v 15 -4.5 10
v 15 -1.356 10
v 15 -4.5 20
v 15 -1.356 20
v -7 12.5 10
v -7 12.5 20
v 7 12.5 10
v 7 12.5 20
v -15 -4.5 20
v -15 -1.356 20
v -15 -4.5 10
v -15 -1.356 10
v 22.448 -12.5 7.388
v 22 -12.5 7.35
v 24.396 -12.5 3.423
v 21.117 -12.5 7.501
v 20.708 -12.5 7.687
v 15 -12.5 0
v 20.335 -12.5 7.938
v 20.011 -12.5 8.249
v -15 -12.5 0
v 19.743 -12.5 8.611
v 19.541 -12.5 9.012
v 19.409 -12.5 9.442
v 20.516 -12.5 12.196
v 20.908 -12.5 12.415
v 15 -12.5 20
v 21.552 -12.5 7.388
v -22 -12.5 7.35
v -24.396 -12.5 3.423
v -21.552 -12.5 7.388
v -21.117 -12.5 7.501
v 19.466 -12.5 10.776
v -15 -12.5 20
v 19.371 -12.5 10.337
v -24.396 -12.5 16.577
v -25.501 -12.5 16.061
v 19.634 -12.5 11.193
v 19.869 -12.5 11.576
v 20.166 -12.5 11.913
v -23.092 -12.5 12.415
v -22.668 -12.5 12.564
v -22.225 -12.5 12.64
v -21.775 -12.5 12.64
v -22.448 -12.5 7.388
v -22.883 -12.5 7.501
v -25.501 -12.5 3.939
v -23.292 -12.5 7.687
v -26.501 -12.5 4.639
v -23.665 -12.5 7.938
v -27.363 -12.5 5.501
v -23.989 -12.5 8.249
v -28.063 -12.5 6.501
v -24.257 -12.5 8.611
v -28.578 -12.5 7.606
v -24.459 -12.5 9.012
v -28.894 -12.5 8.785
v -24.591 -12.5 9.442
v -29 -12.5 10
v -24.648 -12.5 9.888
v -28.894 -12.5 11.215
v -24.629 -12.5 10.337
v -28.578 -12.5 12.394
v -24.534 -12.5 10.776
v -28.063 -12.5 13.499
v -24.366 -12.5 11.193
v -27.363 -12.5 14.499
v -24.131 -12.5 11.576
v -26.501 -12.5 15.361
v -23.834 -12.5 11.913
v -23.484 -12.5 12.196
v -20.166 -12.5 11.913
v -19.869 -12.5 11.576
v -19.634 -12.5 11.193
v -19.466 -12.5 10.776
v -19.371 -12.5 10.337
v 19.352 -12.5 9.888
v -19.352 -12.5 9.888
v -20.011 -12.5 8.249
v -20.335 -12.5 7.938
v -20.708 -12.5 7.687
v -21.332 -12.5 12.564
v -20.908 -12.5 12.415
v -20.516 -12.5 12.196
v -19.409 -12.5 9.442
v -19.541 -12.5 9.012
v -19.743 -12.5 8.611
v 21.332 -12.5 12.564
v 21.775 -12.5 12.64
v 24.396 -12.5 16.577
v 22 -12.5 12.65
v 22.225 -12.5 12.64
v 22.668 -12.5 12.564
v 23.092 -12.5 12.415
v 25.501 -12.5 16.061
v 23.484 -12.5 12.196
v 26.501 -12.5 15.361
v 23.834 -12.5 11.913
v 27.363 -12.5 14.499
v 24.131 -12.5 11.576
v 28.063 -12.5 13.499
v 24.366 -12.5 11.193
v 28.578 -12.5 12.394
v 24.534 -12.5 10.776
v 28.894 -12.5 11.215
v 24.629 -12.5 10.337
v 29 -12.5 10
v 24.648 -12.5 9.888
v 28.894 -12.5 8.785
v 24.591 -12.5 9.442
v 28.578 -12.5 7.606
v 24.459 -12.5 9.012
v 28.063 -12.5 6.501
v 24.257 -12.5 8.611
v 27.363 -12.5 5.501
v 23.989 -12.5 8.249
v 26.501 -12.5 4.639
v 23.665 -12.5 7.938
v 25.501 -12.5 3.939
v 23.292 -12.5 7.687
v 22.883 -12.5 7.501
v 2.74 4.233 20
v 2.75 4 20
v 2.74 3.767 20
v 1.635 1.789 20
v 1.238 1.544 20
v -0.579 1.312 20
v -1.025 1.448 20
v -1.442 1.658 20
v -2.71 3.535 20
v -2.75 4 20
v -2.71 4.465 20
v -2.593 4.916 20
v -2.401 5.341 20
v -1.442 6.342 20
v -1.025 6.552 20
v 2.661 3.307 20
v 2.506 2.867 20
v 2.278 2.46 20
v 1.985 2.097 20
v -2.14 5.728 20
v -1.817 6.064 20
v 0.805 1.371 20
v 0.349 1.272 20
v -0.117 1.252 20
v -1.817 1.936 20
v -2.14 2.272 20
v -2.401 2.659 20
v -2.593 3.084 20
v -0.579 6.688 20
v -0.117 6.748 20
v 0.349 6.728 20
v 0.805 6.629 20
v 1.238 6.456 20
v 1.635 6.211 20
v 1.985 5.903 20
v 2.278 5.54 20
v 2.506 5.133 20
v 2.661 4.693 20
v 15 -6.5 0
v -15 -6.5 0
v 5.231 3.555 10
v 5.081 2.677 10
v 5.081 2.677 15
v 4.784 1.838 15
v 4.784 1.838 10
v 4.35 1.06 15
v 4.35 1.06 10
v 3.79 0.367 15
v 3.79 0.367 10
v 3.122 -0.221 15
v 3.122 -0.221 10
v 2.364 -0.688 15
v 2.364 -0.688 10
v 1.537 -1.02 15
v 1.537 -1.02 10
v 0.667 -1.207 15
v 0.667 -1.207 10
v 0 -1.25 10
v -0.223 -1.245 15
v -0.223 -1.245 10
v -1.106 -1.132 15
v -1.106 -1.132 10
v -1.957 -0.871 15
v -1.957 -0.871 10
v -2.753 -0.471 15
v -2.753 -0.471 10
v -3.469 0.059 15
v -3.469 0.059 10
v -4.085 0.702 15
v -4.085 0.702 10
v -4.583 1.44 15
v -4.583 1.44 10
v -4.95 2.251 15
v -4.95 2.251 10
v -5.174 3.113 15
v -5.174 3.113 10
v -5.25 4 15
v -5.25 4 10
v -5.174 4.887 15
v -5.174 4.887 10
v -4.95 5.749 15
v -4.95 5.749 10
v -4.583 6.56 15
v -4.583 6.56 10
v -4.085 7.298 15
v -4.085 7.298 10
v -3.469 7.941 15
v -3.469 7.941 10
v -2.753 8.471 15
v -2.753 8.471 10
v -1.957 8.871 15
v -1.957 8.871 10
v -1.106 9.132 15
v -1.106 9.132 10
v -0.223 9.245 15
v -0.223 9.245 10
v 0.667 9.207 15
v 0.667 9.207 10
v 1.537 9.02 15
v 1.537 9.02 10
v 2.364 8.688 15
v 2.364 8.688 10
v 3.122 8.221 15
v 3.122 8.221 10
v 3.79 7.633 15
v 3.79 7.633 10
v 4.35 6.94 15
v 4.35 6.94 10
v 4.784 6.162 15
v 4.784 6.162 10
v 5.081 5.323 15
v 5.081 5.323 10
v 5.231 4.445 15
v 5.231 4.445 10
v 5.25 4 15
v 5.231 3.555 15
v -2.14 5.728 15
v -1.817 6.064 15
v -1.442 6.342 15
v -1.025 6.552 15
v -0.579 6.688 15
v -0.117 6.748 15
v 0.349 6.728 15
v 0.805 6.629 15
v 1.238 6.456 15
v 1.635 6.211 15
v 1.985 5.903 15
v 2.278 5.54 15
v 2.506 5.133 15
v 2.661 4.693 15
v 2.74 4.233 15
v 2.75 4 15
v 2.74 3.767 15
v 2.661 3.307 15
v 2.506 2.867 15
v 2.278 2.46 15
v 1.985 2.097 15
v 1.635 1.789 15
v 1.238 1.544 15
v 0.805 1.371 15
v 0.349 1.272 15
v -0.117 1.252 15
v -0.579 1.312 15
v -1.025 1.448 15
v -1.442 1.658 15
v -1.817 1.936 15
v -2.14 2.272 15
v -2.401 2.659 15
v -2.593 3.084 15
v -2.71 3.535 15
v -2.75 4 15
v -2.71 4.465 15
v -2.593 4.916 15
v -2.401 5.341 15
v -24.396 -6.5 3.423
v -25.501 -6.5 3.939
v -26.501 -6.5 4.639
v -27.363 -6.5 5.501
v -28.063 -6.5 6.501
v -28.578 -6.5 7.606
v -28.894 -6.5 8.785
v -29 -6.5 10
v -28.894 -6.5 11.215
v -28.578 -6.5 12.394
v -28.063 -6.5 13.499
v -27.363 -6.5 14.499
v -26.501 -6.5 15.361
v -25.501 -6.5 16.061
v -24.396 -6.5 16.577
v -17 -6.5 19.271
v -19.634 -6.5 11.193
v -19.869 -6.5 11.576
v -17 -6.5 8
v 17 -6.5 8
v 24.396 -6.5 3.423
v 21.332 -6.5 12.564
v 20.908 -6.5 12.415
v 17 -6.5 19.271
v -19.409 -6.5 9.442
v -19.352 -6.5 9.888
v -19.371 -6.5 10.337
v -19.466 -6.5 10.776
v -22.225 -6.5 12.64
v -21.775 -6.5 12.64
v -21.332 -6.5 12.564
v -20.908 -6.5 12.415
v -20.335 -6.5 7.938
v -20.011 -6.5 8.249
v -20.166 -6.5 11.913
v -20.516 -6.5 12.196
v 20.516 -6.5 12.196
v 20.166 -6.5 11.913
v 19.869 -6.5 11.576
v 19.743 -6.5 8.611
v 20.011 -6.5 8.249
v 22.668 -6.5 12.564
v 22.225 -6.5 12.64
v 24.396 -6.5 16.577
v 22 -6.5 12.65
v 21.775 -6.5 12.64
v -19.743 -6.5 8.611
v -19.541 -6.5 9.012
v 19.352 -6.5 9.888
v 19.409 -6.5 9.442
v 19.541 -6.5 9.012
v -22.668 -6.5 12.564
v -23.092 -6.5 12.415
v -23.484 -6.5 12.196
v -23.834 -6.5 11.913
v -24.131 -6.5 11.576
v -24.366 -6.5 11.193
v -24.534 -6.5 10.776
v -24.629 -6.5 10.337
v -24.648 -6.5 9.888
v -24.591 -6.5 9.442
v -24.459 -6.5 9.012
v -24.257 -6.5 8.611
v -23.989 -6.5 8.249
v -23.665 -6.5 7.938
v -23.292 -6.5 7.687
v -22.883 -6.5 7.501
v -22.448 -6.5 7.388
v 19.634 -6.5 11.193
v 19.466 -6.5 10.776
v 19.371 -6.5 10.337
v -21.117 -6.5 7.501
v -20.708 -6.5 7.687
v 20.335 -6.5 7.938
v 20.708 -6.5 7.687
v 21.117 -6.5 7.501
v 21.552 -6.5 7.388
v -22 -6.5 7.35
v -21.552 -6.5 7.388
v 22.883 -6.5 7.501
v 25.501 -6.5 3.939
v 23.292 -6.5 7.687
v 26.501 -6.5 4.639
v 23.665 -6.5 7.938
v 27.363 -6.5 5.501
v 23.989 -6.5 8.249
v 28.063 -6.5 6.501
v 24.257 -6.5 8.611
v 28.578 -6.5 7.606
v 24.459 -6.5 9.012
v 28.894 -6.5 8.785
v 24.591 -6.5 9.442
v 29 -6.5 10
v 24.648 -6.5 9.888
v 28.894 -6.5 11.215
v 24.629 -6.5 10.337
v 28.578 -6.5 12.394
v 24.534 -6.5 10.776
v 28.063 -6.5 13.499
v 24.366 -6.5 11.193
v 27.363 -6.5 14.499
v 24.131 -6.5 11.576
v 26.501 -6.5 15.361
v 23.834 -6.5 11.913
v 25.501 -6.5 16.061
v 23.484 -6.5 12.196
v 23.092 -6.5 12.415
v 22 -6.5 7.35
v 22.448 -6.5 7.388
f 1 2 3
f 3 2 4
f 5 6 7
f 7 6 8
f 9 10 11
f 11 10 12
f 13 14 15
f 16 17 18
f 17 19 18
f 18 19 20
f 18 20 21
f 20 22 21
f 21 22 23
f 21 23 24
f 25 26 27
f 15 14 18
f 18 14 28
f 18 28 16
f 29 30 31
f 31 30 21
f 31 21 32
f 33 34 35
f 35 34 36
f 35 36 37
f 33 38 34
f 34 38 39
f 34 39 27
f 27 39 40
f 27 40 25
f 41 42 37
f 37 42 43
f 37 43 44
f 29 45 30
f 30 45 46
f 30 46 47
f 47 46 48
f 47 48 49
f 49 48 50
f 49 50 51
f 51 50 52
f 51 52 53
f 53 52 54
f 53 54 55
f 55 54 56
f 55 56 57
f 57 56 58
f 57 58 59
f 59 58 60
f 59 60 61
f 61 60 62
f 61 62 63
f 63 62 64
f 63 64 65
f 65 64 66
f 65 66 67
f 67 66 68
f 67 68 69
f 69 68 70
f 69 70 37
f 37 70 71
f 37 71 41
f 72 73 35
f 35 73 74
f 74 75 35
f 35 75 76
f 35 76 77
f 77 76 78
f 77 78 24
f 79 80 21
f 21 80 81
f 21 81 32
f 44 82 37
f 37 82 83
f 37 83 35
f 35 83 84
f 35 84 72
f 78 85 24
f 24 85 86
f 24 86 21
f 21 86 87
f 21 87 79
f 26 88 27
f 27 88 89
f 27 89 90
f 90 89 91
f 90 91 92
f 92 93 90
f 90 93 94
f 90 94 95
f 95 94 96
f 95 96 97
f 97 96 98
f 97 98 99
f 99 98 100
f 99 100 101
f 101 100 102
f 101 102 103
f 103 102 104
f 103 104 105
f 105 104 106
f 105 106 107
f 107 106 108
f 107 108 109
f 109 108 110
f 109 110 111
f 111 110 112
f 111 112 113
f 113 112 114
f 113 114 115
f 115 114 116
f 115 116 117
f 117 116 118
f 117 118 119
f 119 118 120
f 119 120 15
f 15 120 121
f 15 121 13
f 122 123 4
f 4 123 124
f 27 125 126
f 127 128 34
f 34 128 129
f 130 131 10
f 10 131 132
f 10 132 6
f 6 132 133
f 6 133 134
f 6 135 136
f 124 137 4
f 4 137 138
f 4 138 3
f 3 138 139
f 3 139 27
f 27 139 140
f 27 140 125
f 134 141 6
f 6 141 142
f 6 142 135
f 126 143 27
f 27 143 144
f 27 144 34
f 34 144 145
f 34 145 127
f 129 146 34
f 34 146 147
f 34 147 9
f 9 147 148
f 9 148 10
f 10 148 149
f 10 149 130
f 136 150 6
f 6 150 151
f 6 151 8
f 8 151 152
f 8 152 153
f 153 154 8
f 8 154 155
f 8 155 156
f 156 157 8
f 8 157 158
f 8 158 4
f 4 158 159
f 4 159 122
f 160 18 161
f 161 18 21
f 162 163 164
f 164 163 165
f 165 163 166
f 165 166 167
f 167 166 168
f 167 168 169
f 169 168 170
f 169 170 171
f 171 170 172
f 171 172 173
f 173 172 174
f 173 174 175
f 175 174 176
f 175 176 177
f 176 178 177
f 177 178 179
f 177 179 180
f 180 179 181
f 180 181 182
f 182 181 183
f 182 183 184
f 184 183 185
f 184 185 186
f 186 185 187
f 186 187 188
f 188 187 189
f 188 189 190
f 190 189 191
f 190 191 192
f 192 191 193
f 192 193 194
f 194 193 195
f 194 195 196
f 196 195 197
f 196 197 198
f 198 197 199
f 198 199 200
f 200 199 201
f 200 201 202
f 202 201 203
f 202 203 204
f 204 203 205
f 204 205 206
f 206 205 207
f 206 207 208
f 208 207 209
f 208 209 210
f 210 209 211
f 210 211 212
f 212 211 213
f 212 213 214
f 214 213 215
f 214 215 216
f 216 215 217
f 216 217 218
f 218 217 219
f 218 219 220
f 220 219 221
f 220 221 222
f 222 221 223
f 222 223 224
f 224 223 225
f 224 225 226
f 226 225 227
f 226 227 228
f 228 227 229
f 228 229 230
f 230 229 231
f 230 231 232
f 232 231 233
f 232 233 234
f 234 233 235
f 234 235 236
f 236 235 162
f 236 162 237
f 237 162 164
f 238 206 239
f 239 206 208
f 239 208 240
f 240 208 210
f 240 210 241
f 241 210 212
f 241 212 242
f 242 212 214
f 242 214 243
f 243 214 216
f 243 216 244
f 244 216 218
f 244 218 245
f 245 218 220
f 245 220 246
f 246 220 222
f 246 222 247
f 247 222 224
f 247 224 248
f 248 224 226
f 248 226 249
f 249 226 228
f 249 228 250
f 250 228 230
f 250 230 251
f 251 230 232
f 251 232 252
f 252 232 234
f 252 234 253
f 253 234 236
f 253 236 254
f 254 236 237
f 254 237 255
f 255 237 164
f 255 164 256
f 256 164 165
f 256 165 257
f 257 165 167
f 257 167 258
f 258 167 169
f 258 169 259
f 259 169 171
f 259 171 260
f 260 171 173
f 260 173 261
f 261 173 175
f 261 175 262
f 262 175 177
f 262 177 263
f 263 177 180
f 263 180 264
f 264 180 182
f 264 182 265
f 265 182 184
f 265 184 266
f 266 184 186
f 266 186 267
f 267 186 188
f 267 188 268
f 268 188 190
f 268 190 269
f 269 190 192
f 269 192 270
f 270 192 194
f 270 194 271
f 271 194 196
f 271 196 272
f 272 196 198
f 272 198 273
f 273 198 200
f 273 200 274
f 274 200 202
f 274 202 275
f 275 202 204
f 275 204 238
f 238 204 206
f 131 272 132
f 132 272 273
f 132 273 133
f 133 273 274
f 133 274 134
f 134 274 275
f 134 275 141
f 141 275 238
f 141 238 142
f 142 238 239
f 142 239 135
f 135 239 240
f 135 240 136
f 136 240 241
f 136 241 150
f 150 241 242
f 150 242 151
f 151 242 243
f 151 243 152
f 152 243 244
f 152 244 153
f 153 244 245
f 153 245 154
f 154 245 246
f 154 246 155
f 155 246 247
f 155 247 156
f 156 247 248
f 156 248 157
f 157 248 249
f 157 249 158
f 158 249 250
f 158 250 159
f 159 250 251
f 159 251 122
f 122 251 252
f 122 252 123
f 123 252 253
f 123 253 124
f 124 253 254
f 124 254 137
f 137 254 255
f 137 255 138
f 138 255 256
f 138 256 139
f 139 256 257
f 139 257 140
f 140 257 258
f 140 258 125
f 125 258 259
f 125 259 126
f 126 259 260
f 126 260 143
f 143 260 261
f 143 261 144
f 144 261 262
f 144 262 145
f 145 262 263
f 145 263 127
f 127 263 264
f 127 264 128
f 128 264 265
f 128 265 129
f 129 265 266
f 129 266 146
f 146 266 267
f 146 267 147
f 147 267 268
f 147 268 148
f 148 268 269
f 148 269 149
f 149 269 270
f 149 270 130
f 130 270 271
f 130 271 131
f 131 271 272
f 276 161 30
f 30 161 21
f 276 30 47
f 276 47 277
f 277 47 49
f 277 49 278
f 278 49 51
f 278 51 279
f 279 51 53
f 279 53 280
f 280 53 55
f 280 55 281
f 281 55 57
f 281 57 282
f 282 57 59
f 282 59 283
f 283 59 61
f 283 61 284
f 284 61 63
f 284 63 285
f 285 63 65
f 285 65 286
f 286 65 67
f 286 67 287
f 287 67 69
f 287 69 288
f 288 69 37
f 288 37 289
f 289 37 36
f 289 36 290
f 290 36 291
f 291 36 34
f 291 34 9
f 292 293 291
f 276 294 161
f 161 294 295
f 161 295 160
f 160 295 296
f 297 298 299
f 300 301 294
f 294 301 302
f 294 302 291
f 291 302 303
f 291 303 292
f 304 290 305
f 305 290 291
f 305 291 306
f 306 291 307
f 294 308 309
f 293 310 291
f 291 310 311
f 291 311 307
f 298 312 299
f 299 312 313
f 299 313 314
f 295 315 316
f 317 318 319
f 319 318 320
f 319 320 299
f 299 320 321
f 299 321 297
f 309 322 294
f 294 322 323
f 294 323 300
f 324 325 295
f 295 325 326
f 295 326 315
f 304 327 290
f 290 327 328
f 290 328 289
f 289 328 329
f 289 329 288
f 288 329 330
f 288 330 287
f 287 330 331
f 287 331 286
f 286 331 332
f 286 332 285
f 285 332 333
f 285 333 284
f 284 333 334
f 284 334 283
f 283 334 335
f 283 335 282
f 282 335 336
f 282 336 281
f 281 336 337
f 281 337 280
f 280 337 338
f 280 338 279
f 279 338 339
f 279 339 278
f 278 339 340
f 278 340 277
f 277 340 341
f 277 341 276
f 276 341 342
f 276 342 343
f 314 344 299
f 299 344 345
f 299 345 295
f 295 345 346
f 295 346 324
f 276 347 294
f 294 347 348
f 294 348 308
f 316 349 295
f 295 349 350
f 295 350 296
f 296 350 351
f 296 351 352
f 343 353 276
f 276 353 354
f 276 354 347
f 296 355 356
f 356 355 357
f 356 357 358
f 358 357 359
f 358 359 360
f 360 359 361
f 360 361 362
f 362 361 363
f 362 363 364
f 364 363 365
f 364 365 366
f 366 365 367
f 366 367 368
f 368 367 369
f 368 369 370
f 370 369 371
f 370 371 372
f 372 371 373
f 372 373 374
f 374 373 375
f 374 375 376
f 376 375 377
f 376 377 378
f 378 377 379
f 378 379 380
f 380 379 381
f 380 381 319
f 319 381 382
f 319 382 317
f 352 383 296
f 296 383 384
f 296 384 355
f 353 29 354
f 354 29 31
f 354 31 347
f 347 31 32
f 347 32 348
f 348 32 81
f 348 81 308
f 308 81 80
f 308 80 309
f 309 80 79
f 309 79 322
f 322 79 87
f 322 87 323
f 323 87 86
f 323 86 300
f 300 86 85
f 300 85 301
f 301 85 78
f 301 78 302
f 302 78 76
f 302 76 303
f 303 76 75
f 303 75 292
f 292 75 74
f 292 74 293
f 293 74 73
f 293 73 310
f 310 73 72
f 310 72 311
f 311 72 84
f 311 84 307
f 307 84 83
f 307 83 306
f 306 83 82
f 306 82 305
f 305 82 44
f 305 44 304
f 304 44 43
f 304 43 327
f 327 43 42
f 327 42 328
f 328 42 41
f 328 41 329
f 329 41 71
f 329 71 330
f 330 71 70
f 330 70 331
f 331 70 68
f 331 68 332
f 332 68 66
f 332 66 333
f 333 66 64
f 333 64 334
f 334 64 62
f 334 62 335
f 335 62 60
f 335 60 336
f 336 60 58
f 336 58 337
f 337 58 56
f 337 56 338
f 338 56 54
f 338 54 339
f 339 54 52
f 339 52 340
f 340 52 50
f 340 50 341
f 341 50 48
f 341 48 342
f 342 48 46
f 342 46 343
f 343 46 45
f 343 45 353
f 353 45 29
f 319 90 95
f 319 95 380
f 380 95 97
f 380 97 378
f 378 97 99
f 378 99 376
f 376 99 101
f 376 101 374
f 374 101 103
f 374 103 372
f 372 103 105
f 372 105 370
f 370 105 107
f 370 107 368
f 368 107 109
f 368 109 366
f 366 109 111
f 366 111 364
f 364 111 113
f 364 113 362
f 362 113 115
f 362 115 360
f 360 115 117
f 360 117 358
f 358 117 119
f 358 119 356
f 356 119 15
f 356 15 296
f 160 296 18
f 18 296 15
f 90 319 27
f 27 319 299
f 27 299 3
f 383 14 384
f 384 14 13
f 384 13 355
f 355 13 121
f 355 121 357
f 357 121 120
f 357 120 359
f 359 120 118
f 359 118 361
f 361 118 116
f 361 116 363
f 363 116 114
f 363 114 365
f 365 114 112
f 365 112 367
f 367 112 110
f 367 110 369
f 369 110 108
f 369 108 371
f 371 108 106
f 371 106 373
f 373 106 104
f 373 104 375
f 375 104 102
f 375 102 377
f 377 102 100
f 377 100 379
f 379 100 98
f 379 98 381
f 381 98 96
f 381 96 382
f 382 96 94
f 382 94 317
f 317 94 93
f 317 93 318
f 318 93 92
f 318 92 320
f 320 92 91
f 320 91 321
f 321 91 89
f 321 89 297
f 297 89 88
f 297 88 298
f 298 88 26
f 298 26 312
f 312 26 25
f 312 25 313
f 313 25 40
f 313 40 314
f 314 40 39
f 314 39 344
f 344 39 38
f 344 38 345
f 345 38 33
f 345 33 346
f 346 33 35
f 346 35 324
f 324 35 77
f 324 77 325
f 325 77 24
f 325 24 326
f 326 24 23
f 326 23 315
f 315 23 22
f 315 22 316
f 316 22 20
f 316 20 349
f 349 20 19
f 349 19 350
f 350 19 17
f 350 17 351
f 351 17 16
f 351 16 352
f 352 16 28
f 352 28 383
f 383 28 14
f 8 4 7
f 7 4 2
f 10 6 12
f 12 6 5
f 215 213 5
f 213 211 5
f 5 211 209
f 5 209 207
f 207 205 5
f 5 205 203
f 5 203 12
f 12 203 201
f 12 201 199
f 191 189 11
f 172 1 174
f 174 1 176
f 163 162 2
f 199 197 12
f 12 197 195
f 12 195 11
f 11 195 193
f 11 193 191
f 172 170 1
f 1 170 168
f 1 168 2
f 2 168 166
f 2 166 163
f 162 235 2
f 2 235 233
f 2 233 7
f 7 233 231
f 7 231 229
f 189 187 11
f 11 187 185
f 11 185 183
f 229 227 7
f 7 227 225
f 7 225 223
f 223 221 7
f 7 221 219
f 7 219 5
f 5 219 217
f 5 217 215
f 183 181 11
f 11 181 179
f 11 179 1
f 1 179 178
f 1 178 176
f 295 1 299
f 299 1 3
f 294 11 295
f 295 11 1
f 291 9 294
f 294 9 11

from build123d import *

# Parameters (mm, degrees)
SKETCH1_W           = 30
SKETCH1_H           = 25
BOSS_EXTRUDE1_DEPTH = 20
SKETCH2_R           = 5.25
CUT_EXTRUDE1_DEPTH  = 15
CUT_EXTRUDE2_REACH  = 29.951
SKETCH3_R           = 2.75
SKETCH4_R           = 2.65
BOSS_EXTRUDE2_DEPTH = 6
CHAMFER1_SIZE       = 8
CHAMFER1_SIZE2      = 13.856406461
SKETCH5_W           = 10
SKETCH5_H           = 19
CUT_EXTRUDE3_DEPTH  = 20
CHAMFER2_SIZE       = 2


with BuildPart() as part:
    # Sketch1 → Boss-Extrude1 (new body)
    with BuildSketch(Plane.XY):
        Rectangle(SKETCH1_W, SKETCH1_H)
    extrude(amount=BOSS_EXTRUDE1_DEPTH)

    # Sketch2 → Cut-Extrude1 (cut)
    with BuildSketch(Plane.XY):
        with Locations((0, 4)):
            Circle(SKETCH2_R)
    extrude(amount=CUT_EXTRUDE1_DEPTH, mode=Mode.SUBTRACT)

    # Sketch3 → Cut-Extrude2 (cut, up to next)
    with BuildSketch(Plane.XY, mode=Mode.PRIVATE) as cut_extrude2_sk1:
        with Locations((0, 4)):
            Circle(SKETCH3_R)
    cut_extrude2_tool1 = extrude(cut_extrude2_sk1.sketch, amount=CUT_EXTRUDE2_REACH, mode=Mode.PRIVATE) & part.part
    add(cut_extrude2_tool1.solids().sort_by_distance((0, 4, 0))[0], mode=Mode.SUBTRACT)

    # Sketch4 → Boss-Extrude2 (add)
    # profile 1 of 2: a face of its own
    with BuildSketch(Plane.XZ.offset(12.5)):
        with BuildLine():
            Line((-15, 20), (-24.395973154, 16.577181208))
            ThreePointArc((-24.395973154, 16.577181208), (-29, 10), (-24.395973154, 3.422818792))
            Line((-24.395973154, 3.422818792), (-15, 0))
            Line((-15, 0), (-15, 20))
        make_face()
        with Locations(Location((-22, 10, 0), (0, 0, 270))):
            Circle(SKETCH4_R, mode=Mode.SUBTRACT)
    # profile 2 of 2: a face of its own
    with BuildSketch(Plane.XZ.offset(12.5)):
        with BuildLine():
            Line((15, 0), (24.395973154, 3.422818792))
            ThreePointArc((24.395973154, 3.422818792), (29, 10), (24.395973154, 16.577181208))
            Line((24.395973154, 16.577181208), (15, 20))
            Line((15, 20), (15, 0))
        make_face()
        with Locations(Location((22, 10, 0), (0, 0, 90))):
            Circle(SKETCH4_R, mode=Mode.SUBTRACT)
    extrude(amount=-BOSS_EXTRUDE2_DEPTH)

    # Chamfer1
    chamfer1_edges = [part.edges().sort_by_distance(p)[0] for p in [
        (-15, 12.5, 10),
        (15, 12.5, 10),
    ]]
    chamfer1_side = [part.faces().sort_by_distance(p)[0] for p in [
        (0, 12.5, 10),
    ]]
    chamfer(chamfer1_edges, length=CHAMFER1_SIZE, length2=CHAMFER1_SIZE2, reference=chamfer1_side[0])

    # Sketch5 → Cut-Extrude3 (cut, symmetric)
    with BuildSketch(Plane(origin=(0, 0, 0), x_dir=(0, 0, -1), z_dir=(1, 0, 0))):
        with Locations((-5, 3)):
            Rectangle(SKETCH5_W, SKETCH5_H)
    extrude(amount=CUT_EXTRUDE3_DEPTH, both=True, mode=Mode.SUBTRACT)

    # Chamfer2
    chamfer2_edges = [part.edges().sort_by_distance(p)[0] for p in [
        (-15, -6.5, 15),
        (15, -6.5, 15),
        (0, -6.5, 10),
    ]]
    chamfer(chamfer2_edges, length=CHAMFER2_SIZE)


solid = part.part
